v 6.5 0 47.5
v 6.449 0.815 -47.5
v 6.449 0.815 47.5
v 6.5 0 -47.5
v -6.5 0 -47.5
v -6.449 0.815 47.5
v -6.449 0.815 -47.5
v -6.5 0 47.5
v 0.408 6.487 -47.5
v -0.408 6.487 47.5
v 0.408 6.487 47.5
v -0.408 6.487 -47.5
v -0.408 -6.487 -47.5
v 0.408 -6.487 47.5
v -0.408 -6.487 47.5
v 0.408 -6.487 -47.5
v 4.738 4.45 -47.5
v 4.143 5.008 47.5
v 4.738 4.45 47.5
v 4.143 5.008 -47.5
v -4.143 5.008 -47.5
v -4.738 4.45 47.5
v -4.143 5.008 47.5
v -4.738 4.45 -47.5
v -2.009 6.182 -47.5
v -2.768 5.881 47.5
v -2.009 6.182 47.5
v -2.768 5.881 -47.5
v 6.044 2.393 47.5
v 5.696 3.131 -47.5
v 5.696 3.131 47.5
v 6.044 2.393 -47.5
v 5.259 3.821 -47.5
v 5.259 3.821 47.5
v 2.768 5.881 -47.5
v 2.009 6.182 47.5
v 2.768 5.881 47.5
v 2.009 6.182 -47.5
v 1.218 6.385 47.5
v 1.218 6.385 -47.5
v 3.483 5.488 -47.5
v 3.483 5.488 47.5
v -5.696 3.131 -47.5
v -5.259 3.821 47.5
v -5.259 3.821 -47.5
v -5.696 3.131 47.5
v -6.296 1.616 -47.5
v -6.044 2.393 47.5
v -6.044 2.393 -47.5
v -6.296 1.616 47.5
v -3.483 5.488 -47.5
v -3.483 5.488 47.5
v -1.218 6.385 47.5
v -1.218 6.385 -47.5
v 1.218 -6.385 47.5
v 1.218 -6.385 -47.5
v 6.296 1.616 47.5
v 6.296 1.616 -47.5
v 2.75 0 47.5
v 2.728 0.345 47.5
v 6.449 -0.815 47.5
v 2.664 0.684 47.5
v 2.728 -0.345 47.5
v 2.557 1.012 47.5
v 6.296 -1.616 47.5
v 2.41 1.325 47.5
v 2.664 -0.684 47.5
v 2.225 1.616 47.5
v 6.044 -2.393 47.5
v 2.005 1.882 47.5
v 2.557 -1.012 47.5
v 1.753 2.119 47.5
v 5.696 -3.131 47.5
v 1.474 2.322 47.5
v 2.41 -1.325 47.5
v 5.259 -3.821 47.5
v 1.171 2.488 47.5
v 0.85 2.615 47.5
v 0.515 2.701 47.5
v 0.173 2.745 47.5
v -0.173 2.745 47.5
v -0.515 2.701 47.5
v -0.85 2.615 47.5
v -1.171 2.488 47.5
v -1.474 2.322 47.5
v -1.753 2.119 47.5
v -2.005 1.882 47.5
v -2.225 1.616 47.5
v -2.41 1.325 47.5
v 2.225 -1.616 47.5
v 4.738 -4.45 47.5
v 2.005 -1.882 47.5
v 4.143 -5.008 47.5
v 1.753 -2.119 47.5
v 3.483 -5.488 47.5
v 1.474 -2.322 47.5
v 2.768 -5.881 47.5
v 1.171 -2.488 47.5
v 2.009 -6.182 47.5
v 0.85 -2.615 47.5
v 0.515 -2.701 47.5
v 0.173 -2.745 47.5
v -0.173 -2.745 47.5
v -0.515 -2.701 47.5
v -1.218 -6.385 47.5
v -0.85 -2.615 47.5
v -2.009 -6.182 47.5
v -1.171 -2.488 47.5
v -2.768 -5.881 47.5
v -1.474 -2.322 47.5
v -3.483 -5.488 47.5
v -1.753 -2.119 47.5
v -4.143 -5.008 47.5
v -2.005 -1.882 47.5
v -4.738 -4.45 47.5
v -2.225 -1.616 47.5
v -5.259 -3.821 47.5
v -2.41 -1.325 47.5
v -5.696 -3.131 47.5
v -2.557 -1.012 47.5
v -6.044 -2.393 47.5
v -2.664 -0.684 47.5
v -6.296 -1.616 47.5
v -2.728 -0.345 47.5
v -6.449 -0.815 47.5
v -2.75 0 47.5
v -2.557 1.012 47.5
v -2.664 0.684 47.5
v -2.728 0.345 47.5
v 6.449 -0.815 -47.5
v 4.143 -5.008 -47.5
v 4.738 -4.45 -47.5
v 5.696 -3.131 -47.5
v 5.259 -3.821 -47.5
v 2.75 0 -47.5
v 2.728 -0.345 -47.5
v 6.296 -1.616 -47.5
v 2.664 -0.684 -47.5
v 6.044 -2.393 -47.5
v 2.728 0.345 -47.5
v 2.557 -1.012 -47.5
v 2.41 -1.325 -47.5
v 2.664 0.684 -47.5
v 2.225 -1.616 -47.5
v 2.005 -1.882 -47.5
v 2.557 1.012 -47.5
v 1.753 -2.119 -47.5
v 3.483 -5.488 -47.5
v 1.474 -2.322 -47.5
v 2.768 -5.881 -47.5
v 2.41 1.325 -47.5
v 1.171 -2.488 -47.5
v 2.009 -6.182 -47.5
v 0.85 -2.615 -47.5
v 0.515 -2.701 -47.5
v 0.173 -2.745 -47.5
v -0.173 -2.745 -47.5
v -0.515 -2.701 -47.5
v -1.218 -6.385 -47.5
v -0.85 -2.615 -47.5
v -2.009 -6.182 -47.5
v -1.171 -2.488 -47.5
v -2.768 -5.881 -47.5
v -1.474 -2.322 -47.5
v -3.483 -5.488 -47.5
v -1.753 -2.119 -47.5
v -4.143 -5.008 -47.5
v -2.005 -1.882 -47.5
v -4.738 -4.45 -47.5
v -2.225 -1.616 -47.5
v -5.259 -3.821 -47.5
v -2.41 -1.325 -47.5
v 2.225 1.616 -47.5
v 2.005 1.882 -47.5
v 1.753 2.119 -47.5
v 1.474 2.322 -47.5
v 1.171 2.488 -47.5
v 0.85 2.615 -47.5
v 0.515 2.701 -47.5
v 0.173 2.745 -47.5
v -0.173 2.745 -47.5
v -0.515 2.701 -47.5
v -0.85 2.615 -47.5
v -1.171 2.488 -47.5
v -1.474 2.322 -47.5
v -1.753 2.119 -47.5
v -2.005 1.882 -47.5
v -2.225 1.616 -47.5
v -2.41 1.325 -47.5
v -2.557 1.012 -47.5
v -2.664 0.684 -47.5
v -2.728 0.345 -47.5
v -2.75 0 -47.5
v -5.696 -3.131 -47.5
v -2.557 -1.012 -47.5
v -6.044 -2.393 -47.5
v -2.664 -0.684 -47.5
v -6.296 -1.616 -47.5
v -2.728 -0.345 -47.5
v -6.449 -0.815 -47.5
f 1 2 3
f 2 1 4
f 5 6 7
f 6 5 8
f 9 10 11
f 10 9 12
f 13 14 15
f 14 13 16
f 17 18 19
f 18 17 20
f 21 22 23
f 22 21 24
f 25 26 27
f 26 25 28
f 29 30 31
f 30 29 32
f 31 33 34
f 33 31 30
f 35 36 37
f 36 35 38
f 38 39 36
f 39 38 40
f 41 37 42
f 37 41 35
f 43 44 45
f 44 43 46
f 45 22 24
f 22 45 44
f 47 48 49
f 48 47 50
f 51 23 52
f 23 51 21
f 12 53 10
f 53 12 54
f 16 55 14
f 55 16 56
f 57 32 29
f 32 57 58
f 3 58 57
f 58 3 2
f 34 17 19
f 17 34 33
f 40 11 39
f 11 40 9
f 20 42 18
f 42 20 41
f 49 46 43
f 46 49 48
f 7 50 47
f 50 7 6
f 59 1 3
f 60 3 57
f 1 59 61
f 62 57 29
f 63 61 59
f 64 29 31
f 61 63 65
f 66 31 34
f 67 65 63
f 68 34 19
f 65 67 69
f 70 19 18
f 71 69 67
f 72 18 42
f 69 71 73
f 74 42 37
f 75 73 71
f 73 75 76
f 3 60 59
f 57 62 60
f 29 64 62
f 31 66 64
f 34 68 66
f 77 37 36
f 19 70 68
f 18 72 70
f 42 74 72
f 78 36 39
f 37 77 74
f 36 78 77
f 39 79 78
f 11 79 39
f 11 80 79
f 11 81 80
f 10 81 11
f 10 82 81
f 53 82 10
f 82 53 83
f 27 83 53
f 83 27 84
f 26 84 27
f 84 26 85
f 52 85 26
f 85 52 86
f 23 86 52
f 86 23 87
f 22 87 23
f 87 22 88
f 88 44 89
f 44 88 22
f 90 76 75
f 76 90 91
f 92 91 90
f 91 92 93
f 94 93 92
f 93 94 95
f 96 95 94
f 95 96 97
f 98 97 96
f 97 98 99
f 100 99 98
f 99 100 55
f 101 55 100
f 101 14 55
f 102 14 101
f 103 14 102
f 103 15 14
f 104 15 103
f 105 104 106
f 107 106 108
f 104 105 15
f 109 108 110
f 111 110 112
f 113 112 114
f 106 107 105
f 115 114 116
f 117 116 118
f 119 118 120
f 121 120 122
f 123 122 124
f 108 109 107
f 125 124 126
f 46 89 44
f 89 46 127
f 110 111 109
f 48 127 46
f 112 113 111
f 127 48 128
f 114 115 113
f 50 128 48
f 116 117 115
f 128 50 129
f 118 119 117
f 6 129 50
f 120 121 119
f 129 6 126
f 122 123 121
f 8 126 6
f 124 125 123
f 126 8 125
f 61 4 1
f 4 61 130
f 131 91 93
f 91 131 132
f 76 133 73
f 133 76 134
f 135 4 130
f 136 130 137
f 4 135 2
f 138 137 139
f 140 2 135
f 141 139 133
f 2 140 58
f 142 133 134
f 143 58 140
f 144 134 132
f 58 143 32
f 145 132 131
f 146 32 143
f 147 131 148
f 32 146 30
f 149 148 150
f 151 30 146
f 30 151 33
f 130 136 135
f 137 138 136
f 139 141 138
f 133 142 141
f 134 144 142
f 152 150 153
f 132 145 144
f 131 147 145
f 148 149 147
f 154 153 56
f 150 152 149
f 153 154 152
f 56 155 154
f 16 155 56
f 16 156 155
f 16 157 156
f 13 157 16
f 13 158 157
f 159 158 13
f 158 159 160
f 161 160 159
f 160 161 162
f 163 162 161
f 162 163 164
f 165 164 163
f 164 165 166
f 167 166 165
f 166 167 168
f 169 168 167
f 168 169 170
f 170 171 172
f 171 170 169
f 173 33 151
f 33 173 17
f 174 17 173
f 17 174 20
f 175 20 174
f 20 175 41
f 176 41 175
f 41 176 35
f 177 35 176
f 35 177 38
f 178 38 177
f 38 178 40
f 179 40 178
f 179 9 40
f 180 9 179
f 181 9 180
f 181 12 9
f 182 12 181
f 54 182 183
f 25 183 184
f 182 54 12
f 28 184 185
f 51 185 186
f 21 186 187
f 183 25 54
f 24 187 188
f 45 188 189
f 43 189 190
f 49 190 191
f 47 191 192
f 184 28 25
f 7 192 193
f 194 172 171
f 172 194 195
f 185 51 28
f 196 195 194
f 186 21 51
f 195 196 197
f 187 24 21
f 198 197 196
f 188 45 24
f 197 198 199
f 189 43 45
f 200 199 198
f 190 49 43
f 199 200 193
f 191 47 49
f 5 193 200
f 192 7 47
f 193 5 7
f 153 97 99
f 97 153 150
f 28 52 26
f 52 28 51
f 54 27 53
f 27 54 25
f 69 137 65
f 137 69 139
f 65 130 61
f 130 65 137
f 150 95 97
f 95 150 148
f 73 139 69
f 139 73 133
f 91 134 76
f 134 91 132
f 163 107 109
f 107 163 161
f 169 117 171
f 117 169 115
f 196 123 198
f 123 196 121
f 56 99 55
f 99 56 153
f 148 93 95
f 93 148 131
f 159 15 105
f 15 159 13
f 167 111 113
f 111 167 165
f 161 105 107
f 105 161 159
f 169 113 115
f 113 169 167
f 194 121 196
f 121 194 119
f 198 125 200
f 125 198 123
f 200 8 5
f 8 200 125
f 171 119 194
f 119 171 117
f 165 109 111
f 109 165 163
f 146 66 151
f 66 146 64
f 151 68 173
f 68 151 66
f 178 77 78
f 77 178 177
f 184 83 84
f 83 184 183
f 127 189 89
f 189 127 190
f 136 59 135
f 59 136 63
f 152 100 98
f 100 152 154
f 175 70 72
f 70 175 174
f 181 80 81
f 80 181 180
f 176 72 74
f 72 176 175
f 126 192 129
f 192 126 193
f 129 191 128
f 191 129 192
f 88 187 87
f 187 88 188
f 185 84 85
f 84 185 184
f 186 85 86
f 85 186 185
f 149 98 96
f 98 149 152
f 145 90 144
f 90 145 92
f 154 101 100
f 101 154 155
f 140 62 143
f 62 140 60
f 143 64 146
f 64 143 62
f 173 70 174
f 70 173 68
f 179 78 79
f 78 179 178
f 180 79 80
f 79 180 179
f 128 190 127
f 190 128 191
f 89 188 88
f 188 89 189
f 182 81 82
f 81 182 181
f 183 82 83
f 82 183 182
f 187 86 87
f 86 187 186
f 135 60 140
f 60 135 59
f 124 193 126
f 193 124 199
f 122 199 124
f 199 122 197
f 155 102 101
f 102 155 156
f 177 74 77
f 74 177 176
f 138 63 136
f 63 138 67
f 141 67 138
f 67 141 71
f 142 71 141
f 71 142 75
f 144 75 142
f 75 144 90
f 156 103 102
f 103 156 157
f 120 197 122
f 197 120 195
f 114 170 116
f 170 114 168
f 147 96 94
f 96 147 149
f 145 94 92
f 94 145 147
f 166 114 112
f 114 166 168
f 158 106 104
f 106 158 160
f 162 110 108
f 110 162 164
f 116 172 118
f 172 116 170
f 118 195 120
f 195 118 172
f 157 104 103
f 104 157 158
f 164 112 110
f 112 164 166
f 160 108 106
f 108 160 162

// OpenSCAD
$fn = 50;


difference() {
	union() {
		translate(v = [0, 0, -47.5000000000]) {
			cylinder(h = 95, r = 6.5000000000);
		}
	}
	union() {
		translate(v = [0, 0, -100.0000000000]) {
			cylinder(h = 200, r = 2.7500000000);
		}
	}
}
